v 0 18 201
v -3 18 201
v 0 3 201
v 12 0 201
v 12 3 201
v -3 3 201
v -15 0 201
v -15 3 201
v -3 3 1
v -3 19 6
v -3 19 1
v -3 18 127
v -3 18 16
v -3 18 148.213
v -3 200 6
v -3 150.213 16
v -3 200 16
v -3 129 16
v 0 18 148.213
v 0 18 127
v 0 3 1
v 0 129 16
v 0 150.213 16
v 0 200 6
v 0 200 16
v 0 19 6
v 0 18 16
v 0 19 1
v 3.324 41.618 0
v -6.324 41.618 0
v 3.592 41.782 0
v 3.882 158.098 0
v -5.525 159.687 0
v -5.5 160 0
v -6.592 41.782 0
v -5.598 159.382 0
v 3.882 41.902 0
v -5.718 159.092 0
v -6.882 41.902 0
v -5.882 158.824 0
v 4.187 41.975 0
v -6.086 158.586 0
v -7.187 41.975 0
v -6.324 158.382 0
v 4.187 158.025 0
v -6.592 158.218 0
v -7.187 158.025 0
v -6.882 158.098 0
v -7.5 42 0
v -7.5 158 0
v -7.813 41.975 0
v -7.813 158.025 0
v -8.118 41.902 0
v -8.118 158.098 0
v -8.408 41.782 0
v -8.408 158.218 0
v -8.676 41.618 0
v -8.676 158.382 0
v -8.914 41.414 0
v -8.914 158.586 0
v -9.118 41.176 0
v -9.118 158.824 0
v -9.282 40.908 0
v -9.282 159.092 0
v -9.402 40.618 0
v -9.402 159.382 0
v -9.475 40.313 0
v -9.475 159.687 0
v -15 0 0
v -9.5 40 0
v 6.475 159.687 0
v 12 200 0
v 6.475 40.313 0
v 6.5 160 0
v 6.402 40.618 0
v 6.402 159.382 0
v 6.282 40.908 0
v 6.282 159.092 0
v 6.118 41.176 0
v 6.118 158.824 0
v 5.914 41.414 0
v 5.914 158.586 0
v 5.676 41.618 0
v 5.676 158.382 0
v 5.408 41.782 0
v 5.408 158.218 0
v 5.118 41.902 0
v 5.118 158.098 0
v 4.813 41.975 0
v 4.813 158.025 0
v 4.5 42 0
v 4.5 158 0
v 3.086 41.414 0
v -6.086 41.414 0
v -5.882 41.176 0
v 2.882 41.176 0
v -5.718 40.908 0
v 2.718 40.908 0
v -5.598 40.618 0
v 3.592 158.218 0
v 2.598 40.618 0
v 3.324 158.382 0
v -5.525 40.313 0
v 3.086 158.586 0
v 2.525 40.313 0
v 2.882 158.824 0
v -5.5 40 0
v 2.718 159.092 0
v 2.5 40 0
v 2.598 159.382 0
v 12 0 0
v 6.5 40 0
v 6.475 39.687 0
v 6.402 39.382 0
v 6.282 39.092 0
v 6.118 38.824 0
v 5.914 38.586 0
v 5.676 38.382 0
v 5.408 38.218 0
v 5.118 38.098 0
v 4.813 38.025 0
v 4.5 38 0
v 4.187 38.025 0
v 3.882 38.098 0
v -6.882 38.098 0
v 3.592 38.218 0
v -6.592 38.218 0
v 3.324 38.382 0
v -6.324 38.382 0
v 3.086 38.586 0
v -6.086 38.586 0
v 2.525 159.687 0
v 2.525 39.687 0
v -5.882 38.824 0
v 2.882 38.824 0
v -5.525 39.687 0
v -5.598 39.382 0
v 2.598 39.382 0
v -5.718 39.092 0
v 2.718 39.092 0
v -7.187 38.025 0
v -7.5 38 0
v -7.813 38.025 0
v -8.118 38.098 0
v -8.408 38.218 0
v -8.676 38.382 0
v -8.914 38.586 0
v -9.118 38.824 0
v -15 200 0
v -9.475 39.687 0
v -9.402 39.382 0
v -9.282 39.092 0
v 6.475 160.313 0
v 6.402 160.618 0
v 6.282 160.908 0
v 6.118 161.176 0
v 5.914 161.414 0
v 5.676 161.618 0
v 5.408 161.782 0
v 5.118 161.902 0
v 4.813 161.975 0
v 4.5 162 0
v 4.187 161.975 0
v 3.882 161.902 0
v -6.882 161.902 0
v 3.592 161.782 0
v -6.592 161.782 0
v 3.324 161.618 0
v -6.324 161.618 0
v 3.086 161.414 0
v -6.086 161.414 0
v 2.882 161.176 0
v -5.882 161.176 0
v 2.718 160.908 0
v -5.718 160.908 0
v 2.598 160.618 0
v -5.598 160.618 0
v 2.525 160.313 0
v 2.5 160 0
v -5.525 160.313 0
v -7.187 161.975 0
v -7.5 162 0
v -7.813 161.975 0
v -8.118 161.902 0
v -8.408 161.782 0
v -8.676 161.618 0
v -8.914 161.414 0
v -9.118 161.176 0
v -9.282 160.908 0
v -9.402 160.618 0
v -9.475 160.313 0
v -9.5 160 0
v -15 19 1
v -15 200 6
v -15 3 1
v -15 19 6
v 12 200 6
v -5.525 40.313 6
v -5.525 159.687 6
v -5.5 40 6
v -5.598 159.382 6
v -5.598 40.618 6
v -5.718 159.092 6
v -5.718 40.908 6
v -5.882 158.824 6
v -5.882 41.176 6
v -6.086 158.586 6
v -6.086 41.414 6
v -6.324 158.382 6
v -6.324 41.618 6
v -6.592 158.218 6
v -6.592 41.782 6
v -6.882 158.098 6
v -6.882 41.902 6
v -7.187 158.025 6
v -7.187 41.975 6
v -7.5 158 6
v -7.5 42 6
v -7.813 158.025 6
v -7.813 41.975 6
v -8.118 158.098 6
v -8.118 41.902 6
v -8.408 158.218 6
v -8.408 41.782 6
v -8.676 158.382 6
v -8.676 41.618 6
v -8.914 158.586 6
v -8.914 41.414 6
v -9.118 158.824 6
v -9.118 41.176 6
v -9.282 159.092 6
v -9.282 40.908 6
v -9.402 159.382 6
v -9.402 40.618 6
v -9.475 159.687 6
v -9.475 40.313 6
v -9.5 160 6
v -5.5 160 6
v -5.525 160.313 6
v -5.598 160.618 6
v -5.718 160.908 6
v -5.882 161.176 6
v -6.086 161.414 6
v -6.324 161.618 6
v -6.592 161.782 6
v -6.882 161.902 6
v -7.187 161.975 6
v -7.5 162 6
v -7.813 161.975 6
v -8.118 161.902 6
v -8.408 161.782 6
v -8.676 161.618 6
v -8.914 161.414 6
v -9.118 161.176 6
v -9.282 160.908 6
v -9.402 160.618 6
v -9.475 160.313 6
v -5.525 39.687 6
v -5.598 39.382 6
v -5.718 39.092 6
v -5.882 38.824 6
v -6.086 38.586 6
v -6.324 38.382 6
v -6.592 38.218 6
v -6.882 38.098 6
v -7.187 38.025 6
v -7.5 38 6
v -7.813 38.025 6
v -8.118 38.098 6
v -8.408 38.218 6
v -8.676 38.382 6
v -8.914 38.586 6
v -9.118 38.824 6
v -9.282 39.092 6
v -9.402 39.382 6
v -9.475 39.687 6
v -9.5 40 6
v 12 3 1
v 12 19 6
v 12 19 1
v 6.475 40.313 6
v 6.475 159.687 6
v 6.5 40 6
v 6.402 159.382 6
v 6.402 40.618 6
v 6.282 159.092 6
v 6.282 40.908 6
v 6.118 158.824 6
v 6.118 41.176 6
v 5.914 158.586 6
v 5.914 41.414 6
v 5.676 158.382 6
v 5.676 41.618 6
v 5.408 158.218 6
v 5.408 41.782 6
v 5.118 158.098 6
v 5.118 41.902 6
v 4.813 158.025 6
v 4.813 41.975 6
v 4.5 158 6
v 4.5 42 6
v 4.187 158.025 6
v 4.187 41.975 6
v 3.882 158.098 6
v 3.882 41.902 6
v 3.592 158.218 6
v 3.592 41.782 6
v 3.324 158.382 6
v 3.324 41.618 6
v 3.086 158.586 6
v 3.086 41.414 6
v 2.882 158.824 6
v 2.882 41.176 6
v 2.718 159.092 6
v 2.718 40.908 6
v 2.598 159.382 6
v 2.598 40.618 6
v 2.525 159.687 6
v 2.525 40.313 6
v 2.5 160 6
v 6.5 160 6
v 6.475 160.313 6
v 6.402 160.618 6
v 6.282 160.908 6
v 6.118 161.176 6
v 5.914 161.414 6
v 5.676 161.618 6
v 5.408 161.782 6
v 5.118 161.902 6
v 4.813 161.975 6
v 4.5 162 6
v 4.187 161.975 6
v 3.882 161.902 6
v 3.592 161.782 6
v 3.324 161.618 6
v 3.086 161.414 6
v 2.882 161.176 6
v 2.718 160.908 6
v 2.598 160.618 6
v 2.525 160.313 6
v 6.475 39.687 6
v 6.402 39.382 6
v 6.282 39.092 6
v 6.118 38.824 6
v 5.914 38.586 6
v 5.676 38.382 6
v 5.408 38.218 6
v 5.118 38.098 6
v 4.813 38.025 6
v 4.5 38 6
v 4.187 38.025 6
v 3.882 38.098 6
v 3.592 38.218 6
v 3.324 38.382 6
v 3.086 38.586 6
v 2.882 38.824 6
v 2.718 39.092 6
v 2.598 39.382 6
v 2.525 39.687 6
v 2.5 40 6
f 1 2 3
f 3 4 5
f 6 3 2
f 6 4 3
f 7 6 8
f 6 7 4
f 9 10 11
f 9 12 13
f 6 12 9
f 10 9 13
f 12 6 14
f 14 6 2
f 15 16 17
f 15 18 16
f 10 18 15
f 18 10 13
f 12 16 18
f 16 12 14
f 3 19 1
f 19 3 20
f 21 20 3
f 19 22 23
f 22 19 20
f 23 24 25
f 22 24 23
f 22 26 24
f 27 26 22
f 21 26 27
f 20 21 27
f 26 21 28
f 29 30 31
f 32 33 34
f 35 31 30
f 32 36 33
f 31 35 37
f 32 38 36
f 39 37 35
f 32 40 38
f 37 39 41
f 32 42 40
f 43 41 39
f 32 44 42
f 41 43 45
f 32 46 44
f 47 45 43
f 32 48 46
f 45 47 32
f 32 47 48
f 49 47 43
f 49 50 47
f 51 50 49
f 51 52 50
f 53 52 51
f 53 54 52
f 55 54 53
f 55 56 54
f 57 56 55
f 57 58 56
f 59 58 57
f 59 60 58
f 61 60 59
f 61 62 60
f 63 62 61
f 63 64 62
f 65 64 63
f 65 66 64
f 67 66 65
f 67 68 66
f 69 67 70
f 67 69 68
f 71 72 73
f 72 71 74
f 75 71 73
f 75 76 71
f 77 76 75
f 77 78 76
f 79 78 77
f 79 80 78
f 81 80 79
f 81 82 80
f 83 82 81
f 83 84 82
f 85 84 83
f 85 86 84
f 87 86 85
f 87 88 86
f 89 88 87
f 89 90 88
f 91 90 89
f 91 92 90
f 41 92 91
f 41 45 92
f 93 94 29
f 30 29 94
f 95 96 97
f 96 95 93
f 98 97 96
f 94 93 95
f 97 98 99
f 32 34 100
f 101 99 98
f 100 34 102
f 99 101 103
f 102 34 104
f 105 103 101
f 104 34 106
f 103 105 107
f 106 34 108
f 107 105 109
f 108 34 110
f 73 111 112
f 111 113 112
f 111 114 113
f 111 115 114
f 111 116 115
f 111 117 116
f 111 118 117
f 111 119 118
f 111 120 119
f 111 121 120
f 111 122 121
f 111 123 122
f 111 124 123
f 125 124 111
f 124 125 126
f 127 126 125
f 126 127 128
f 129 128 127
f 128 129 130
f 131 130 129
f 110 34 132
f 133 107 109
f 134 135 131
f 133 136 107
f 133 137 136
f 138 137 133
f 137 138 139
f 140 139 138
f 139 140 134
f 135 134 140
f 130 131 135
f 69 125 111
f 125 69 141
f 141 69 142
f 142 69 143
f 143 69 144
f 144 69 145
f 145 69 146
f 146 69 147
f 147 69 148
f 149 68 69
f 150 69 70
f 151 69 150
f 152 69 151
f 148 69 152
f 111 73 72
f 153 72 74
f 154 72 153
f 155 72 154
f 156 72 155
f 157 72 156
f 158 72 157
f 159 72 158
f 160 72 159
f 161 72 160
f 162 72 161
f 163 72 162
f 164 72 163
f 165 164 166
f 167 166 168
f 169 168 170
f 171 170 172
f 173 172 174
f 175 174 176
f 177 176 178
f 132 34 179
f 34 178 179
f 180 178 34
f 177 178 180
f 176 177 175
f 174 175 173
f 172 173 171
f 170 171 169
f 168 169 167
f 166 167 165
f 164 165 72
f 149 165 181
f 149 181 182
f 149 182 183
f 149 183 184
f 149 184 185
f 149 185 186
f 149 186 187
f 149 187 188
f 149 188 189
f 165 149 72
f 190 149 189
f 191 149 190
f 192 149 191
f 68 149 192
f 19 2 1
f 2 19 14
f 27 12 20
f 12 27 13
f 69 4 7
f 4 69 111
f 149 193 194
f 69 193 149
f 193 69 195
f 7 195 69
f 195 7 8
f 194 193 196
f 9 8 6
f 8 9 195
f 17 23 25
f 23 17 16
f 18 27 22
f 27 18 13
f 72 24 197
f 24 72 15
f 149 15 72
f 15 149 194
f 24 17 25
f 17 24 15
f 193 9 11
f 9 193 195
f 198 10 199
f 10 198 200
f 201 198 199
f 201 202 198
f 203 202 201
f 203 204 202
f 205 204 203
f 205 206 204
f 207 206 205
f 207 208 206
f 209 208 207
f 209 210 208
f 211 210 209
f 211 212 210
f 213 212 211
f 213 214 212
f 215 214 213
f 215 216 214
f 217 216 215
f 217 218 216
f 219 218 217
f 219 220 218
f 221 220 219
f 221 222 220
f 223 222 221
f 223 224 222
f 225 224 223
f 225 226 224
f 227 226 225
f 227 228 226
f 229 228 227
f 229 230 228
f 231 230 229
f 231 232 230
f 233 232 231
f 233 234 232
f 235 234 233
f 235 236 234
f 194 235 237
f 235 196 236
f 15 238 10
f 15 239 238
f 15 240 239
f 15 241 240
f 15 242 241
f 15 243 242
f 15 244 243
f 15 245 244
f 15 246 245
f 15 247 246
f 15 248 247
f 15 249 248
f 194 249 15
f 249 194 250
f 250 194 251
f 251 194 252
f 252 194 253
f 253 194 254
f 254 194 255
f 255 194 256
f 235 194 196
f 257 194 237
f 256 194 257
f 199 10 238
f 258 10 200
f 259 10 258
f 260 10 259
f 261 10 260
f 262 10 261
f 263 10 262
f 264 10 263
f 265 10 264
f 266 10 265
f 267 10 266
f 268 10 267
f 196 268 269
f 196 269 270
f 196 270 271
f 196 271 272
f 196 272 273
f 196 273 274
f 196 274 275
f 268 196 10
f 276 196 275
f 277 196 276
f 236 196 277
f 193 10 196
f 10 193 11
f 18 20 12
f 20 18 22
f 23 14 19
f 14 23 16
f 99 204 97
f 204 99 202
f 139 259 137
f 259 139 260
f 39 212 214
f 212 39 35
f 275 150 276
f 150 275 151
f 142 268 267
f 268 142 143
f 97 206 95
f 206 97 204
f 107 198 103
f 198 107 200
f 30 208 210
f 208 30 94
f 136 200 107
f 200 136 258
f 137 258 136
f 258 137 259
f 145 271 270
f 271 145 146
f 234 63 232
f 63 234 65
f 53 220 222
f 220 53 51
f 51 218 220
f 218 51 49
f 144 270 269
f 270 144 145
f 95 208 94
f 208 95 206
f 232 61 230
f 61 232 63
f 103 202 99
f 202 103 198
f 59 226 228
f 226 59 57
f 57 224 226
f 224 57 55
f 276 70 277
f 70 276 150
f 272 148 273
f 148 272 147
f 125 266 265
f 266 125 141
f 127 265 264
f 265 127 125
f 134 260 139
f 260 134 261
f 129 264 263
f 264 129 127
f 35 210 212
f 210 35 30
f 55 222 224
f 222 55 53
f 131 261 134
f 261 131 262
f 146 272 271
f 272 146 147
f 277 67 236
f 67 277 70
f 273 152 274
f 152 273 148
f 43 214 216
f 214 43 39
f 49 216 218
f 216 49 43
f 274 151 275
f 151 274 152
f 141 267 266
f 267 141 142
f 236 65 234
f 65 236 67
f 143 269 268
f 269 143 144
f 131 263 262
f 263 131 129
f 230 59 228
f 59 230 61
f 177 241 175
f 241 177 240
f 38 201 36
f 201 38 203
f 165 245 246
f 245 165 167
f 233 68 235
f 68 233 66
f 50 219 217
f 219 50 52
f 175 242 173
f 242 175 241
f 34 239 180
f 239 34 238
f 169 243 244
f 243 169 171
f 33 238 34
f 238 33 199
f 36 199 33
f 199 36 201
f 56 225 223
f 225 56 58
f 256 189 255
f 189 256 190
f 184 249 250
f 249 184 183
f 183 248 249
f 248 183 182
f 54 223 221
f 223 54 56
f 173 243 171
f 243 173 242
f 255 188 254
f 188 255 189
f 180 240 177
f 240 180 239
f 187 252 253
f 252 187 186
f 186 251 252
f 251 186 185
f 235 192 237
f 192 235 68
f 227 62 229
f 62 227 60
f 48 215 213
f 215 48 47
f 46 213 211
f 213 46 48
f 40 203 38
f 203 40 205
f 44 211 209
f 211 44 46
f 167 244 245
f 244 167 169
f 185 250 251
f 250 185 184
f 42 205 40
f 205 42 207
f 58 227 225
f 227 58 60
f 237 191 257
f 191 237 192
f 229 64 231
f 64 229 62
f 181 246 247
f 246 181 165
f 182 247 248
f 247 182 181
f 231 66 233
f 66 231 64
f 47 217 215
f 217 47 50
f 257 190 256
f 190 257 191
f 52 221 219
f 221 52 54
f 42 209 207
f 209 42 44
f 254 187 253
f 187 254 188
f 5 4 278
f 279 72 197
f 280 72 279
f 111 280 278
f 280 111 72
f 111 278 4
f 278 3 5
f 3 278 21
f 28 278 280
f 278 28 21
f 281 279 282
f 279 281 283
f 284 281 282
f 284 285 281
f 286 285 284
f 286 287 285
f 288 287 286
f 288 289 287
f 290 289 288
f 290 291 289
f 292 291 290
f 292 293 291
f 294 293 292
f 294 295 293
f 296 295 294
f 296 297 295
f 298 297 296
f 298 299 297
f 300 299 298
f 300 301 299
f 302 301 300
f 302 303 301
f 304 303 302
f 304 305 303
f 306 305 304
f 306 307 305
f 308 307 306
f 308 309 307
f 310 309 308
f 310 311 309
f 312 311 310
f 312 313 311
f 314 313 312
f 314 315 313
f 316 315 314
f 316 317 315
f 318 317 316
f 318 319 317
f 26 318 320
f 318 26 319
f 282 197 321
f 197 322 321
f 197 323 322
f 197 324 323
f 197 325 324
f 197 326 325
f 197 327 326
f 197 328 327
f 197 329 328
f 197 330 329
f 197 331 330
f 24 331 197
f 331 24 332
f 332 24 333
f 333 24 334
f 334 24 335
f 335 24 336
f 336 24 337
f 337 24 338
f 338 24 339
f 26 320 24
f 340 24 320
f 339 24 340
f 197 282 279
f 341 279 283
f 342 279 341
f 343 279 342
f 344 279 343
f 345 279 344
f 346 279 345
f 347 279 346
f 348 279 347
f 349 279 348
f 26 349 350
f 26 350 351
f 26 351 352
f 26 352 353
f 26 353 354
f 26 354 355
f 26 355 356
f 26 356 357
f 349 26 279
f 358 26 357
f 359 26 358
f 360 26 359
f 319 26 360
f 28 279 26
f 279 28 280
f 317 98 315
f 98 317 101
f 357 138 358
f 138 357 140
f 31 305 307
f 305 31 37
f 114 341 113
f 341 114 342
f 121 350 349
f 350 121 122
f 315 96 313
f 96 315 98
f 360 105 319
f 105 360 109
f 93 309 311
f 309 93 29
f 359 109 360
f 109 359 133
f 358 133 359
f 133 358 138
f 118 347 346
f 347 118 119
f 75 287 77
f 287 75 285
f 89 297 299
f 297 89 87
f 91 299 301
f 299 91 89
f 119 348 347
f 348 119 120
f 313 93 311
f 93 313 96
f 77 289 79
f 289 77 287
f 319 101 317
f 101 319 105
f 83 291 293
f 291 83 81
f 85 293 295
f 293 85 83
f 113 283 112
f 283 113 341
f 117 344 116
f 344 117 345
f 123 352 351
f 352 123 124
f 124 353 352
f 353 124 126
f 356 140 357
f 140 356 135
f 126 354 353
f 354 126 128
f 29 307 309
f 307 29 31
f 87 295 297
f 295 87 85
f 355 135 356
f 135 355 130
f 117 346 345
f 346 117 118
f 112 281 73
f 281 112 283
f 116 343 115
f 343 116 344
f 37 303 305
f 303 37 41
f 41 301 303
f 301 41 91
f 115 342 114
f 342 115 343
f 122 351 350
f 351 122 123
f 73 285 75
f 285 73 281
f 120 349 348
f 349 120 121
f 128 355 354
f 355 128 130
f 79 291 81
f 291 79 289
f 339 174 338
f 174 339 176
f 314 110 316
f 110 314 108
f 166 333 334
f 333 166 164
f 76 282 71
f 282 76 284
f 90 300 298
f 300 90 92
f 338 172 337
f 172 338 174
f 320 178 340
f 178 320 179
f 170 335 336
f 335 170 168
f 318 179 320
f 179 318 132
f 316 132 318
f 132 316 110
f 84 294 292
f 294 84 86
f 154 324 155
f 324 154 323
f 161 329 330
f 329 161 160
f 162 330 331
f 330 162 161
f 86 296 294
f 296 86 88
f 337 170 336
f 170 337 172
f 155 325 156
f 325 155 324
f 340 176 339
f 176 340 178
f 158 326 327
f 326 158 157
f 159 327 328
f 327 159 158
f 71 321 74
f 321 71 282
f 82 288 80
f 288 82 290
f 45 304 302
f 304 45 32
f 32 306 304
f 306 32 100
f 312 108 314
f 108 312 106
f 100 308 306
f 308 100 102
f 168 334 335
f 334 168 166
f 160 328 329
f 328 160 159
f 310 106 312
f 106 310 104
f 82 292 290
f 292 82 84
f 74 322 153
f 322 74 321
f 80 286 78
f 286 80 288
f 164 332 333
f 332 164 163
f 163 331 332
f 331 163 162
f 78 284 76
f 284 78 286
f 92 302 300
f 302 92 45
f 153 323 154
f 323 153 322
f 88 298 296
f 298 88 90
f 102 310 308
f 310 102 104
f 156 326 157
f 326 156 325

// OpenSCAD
module bracket() {
  rotate([0, -90, 0])
  difference() {
    union() {
      cube([201, 18, 3]);
      cube([201, 3, 15]);
      cube([16, 200, 3]);
      cube([1, 200, 15]);
      translate([0, 19, 0])
        cube([6, 181, 15]);
      translate([145, 0, 0])
        rotate([0, 0, 45])
        cube([15, 200, 3]);
    }
    translate([-40, 40, 7.5])
      rotate([0, 90, 0])
      cylinder(100, d=4, $fn=40);
    translate([-40, 160, 7.5])
      rotate([0, 90, 0])
      cylinder(100, d=4, $fn=40);
  }
}

// mirror([0, 0, 1])
bracket();
translate([-3, 0, 0])
mirror([1, 0, 0])
bracket();
